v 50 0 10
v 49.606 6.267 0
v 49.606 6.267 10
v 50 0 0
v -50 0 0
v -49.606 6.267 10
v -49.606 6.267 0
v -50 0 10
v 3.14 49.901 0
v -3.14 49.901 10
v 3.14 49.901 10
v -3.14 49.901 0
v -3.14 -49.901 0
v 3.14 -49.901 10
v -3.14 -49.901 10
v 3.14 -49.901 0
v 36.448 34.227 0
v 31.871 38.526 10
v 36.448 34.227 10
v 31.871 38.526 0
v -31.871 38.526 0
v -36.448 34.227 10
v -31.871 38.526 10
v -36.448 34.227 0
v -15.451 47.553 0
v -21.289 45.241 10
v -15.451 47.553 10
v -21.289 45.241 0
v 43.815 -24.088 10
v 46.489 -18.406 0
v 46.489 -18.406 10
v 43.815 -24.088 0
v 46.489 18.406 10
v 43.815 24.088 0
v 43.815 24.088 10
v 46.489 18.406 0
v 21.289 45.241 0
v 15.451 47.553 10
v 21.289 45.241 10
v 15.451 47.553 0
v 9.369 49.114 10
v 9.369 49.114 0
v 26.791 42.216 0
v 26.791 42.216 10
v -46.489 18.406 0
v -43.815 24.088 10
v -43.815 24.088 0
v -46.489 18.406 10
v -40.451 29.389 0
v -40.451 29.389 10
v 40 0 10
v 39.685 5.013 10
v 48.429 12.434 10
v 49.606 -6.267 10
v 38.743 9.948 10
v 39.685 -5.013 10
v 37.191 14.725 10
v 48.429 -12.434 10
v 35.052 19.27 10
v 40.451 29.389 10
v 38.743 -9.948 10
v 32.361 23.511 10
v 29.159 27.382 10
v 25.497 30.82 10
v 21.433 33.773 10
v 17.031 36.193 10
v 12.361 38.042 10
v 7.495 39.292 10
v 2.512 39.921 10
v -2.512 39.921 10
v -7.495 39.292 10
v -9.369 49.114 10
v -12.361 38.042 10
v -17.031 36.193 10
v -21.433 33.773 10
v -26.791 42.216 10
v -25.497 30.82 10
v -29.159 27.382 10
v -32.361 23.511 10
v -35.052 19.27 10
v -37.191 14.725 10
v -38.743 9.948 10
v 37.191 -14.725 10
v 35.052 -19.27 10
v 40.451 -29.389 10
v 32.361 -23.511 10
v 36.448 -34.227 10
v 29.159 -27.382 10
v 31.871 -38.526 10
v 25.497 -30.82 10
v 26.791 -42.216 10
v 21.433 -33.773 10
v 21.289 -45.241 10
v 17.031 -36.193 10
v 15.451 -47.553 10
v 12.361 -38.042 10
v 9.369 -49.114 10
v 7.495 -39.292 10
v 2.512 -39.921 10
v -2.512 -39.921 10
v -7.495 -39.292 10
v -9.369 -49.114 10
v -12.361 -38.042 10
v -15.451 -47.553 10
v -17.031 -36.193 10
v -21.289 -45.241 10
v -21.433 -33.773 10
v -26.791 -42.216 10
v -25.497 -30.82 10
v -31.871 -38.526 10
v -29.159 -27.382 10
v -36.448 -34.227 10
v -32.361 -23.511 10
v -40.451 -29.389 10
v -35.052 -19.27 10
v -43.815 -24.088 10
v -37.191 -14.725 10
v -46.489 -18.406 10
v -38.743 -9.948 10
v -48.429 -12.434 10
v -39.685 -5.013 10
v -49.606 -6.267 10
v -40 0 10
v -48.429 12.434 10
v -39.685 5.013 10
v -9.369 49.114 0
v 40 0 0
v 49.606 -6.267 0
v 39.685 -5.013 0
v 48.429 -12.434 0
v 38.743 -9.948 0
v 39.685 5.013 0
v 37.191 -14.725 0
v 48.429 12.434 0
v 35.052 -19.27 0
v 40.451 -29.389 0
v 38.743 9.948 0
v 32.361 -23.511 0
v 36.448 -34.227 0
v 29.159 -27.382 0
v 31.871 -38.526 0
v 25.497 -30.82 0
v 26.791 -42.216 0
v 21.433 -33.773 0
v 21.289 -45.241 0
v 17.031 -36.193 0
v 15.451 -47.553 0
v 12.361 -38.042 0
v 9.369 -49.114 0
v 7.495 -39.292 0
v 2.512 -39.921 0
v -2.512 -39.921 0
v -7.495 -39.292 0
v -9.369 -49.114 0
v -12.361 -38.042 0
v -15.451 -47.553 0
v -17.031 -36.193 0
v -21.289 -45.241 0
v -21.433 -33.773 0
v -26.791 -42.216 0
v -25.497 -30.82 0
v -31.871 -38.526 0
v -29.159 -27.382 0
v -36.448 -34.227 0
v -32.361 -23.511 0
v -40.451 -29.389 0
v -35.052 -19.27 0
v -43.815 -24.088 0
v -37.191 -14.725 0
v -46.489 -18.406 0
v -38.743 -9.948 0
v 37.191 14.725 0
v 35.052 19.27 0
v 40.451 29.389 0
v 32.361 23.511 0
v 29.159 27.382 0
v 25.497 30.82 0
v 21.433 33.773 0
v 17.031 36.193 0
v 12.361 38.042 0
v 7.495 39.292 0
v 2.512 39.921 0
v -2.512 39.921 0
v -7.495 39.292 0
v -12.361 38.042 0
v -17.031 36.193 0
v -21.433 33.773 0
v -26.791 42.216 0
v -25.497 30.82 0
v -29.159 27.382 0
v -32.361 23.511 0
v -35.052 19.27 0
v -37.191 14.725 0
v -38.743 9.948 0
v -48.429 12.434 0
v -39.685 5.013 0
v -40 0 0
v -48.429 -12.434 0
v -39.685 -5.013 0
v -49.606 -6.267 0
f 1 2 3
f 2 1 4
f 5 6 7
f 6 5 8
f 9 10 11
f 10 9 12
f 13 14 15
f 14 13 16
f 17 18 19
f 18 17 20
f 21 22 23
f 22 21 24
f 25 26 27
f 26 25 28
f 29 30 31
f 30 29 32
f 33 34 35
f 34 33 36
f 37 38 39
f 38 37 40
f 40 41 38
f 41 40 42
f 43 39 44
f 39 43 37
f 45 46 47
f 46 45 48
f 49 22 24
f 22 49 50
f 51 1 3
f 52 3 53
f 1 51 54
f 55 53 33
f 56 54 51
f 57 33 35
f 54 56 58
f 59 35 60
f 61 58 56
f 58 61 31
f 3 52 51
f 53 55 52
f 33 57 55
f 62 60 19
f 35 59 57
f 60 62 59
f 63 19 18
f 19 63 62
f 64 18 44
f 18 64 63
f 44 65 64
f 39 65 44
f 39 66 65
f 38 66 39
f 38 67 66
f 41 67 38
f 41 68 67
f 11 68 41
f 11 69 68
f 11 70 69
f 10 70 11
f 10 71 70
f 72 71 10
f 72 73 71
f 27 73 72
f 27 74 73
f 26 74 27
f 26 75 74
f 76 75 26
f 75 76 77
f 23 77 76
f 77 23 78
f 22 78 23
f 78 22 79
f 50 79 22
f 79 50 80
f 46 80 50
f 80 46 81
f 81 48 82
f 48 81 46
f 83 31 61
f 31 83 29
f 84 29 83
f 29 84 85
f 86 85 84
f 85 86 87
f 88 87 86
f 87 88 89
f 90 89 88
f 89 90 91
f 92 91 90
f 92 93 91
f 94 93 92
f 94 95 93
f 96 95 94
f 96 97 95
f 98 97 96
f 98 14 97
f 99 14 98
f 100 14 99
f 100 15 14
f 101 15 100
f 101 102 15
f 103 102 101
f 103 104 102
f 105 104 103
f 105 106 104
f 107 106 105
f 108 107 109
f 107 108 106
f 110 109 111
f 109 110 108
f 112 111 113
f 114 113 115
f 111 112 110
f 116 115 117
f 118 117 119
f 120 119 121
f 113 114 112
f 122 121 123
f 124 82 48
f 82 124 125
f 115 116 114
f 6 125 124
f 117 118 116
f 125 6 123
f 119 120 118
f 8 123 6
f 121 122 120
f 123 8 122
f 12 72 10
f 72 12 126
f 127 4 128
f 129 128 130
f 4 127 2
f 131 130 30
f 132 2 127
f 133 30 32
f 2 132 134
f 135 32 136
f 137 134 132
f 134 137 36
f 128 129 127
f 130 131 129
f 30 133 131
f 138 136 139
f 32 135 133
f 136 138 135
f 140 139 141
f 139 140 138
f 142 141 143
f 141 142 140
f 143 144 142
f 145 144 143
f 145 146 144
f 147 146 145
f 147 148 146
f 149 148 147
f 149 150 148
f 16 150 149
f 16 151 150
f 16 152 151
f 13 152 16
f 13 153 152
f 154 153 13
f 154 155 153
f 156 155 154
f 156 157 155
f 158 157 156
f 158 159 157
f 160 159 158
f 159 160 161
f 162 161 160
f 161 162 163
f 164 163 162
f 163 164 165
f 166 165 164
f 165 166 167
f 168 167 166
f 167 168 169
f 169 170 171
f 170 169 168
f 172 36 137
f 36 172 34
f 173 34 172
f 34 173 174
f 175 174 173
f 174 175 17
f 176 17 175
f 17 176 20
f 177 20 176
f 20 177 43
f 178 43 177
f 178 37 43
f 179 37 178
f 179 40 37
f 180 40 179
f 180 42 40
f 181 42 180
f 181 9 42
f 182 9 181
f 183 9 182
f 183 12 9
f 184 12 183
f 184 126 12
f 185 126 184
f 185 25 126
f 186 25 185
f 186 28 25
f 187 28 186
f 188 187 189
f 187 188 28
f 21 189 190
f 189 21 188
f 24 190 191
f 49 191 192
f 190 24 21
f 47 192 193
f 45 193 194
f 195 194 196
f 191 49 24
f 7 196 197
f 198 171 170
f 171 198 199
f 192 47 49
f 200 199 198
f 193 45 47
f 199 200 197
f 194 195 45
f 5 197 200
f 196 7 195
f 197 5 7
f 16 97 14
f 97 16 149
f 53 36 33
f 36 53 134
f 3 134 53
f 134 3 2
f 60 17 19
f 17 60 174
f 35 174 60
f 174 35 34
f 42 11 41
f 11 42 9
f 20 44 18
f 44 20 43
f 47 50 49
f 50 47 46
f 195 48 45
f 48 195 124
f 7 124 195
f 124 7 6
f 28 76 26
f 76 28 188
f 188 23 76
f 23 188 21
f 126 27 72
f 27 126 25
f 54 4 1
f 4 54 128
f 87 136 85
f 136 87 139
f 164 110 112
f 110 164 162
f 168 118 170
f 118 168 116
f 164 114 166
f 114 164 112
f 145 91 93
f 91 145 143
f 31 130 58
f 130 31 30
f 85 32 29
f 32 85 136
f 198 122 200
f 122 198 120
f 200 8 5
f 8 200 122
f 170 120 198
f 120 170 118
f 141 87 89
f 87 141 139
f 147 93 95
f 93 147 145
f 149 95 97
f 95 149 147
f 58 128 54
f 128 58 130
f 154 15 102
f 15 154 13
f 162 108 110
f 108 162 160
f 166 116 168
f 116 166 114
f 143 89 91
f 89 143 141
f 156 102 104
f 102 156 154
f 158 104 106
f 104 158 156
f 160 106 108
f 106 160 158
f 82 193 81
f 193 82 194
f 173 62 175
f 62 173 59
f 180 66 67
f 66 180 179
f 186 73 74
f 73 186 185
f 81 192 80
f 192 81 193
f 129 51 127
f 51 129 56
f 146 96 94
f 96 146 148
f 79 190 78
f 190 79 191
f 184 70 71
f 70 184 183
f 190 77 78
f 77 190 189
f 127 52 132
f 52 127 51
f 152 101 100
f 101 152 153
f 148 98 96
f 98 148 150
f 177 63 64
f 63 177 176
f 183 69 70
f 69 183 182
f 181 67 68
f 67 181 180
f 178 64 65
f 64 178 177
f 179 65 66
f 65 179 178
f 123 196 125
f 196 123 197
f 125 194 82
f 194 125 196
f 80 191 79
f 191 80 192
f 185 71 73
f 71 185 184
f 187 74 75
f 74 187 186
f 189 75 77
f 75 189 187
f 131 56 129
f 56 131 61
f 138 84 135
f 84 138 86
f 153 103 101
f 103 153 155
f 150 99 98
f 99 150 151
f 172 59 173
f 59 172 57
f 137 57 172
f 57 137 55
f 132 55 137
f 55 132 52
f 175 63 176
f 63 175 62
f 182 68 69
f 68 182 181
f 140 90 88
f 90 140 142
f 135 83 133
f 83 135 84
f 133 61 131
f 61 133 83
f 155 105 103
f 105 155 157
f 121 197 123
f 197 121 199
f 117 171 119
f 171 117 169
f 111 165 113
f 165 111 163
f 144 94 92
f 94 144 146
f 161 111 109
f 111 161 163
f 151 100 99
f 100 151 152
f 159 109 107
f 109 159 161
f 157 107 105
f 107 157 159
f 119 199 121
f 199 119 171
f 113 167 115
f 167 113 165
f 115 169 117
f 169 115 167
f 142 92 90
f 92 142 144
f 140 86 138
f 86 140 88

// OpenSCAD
$fn = 50;


difference() {
	union() {
		cylinder(h = 10, r = 50.0000000000);
	}
	union() {
		cylinder(h = 10, r = 40.0000000000);
	}
}
